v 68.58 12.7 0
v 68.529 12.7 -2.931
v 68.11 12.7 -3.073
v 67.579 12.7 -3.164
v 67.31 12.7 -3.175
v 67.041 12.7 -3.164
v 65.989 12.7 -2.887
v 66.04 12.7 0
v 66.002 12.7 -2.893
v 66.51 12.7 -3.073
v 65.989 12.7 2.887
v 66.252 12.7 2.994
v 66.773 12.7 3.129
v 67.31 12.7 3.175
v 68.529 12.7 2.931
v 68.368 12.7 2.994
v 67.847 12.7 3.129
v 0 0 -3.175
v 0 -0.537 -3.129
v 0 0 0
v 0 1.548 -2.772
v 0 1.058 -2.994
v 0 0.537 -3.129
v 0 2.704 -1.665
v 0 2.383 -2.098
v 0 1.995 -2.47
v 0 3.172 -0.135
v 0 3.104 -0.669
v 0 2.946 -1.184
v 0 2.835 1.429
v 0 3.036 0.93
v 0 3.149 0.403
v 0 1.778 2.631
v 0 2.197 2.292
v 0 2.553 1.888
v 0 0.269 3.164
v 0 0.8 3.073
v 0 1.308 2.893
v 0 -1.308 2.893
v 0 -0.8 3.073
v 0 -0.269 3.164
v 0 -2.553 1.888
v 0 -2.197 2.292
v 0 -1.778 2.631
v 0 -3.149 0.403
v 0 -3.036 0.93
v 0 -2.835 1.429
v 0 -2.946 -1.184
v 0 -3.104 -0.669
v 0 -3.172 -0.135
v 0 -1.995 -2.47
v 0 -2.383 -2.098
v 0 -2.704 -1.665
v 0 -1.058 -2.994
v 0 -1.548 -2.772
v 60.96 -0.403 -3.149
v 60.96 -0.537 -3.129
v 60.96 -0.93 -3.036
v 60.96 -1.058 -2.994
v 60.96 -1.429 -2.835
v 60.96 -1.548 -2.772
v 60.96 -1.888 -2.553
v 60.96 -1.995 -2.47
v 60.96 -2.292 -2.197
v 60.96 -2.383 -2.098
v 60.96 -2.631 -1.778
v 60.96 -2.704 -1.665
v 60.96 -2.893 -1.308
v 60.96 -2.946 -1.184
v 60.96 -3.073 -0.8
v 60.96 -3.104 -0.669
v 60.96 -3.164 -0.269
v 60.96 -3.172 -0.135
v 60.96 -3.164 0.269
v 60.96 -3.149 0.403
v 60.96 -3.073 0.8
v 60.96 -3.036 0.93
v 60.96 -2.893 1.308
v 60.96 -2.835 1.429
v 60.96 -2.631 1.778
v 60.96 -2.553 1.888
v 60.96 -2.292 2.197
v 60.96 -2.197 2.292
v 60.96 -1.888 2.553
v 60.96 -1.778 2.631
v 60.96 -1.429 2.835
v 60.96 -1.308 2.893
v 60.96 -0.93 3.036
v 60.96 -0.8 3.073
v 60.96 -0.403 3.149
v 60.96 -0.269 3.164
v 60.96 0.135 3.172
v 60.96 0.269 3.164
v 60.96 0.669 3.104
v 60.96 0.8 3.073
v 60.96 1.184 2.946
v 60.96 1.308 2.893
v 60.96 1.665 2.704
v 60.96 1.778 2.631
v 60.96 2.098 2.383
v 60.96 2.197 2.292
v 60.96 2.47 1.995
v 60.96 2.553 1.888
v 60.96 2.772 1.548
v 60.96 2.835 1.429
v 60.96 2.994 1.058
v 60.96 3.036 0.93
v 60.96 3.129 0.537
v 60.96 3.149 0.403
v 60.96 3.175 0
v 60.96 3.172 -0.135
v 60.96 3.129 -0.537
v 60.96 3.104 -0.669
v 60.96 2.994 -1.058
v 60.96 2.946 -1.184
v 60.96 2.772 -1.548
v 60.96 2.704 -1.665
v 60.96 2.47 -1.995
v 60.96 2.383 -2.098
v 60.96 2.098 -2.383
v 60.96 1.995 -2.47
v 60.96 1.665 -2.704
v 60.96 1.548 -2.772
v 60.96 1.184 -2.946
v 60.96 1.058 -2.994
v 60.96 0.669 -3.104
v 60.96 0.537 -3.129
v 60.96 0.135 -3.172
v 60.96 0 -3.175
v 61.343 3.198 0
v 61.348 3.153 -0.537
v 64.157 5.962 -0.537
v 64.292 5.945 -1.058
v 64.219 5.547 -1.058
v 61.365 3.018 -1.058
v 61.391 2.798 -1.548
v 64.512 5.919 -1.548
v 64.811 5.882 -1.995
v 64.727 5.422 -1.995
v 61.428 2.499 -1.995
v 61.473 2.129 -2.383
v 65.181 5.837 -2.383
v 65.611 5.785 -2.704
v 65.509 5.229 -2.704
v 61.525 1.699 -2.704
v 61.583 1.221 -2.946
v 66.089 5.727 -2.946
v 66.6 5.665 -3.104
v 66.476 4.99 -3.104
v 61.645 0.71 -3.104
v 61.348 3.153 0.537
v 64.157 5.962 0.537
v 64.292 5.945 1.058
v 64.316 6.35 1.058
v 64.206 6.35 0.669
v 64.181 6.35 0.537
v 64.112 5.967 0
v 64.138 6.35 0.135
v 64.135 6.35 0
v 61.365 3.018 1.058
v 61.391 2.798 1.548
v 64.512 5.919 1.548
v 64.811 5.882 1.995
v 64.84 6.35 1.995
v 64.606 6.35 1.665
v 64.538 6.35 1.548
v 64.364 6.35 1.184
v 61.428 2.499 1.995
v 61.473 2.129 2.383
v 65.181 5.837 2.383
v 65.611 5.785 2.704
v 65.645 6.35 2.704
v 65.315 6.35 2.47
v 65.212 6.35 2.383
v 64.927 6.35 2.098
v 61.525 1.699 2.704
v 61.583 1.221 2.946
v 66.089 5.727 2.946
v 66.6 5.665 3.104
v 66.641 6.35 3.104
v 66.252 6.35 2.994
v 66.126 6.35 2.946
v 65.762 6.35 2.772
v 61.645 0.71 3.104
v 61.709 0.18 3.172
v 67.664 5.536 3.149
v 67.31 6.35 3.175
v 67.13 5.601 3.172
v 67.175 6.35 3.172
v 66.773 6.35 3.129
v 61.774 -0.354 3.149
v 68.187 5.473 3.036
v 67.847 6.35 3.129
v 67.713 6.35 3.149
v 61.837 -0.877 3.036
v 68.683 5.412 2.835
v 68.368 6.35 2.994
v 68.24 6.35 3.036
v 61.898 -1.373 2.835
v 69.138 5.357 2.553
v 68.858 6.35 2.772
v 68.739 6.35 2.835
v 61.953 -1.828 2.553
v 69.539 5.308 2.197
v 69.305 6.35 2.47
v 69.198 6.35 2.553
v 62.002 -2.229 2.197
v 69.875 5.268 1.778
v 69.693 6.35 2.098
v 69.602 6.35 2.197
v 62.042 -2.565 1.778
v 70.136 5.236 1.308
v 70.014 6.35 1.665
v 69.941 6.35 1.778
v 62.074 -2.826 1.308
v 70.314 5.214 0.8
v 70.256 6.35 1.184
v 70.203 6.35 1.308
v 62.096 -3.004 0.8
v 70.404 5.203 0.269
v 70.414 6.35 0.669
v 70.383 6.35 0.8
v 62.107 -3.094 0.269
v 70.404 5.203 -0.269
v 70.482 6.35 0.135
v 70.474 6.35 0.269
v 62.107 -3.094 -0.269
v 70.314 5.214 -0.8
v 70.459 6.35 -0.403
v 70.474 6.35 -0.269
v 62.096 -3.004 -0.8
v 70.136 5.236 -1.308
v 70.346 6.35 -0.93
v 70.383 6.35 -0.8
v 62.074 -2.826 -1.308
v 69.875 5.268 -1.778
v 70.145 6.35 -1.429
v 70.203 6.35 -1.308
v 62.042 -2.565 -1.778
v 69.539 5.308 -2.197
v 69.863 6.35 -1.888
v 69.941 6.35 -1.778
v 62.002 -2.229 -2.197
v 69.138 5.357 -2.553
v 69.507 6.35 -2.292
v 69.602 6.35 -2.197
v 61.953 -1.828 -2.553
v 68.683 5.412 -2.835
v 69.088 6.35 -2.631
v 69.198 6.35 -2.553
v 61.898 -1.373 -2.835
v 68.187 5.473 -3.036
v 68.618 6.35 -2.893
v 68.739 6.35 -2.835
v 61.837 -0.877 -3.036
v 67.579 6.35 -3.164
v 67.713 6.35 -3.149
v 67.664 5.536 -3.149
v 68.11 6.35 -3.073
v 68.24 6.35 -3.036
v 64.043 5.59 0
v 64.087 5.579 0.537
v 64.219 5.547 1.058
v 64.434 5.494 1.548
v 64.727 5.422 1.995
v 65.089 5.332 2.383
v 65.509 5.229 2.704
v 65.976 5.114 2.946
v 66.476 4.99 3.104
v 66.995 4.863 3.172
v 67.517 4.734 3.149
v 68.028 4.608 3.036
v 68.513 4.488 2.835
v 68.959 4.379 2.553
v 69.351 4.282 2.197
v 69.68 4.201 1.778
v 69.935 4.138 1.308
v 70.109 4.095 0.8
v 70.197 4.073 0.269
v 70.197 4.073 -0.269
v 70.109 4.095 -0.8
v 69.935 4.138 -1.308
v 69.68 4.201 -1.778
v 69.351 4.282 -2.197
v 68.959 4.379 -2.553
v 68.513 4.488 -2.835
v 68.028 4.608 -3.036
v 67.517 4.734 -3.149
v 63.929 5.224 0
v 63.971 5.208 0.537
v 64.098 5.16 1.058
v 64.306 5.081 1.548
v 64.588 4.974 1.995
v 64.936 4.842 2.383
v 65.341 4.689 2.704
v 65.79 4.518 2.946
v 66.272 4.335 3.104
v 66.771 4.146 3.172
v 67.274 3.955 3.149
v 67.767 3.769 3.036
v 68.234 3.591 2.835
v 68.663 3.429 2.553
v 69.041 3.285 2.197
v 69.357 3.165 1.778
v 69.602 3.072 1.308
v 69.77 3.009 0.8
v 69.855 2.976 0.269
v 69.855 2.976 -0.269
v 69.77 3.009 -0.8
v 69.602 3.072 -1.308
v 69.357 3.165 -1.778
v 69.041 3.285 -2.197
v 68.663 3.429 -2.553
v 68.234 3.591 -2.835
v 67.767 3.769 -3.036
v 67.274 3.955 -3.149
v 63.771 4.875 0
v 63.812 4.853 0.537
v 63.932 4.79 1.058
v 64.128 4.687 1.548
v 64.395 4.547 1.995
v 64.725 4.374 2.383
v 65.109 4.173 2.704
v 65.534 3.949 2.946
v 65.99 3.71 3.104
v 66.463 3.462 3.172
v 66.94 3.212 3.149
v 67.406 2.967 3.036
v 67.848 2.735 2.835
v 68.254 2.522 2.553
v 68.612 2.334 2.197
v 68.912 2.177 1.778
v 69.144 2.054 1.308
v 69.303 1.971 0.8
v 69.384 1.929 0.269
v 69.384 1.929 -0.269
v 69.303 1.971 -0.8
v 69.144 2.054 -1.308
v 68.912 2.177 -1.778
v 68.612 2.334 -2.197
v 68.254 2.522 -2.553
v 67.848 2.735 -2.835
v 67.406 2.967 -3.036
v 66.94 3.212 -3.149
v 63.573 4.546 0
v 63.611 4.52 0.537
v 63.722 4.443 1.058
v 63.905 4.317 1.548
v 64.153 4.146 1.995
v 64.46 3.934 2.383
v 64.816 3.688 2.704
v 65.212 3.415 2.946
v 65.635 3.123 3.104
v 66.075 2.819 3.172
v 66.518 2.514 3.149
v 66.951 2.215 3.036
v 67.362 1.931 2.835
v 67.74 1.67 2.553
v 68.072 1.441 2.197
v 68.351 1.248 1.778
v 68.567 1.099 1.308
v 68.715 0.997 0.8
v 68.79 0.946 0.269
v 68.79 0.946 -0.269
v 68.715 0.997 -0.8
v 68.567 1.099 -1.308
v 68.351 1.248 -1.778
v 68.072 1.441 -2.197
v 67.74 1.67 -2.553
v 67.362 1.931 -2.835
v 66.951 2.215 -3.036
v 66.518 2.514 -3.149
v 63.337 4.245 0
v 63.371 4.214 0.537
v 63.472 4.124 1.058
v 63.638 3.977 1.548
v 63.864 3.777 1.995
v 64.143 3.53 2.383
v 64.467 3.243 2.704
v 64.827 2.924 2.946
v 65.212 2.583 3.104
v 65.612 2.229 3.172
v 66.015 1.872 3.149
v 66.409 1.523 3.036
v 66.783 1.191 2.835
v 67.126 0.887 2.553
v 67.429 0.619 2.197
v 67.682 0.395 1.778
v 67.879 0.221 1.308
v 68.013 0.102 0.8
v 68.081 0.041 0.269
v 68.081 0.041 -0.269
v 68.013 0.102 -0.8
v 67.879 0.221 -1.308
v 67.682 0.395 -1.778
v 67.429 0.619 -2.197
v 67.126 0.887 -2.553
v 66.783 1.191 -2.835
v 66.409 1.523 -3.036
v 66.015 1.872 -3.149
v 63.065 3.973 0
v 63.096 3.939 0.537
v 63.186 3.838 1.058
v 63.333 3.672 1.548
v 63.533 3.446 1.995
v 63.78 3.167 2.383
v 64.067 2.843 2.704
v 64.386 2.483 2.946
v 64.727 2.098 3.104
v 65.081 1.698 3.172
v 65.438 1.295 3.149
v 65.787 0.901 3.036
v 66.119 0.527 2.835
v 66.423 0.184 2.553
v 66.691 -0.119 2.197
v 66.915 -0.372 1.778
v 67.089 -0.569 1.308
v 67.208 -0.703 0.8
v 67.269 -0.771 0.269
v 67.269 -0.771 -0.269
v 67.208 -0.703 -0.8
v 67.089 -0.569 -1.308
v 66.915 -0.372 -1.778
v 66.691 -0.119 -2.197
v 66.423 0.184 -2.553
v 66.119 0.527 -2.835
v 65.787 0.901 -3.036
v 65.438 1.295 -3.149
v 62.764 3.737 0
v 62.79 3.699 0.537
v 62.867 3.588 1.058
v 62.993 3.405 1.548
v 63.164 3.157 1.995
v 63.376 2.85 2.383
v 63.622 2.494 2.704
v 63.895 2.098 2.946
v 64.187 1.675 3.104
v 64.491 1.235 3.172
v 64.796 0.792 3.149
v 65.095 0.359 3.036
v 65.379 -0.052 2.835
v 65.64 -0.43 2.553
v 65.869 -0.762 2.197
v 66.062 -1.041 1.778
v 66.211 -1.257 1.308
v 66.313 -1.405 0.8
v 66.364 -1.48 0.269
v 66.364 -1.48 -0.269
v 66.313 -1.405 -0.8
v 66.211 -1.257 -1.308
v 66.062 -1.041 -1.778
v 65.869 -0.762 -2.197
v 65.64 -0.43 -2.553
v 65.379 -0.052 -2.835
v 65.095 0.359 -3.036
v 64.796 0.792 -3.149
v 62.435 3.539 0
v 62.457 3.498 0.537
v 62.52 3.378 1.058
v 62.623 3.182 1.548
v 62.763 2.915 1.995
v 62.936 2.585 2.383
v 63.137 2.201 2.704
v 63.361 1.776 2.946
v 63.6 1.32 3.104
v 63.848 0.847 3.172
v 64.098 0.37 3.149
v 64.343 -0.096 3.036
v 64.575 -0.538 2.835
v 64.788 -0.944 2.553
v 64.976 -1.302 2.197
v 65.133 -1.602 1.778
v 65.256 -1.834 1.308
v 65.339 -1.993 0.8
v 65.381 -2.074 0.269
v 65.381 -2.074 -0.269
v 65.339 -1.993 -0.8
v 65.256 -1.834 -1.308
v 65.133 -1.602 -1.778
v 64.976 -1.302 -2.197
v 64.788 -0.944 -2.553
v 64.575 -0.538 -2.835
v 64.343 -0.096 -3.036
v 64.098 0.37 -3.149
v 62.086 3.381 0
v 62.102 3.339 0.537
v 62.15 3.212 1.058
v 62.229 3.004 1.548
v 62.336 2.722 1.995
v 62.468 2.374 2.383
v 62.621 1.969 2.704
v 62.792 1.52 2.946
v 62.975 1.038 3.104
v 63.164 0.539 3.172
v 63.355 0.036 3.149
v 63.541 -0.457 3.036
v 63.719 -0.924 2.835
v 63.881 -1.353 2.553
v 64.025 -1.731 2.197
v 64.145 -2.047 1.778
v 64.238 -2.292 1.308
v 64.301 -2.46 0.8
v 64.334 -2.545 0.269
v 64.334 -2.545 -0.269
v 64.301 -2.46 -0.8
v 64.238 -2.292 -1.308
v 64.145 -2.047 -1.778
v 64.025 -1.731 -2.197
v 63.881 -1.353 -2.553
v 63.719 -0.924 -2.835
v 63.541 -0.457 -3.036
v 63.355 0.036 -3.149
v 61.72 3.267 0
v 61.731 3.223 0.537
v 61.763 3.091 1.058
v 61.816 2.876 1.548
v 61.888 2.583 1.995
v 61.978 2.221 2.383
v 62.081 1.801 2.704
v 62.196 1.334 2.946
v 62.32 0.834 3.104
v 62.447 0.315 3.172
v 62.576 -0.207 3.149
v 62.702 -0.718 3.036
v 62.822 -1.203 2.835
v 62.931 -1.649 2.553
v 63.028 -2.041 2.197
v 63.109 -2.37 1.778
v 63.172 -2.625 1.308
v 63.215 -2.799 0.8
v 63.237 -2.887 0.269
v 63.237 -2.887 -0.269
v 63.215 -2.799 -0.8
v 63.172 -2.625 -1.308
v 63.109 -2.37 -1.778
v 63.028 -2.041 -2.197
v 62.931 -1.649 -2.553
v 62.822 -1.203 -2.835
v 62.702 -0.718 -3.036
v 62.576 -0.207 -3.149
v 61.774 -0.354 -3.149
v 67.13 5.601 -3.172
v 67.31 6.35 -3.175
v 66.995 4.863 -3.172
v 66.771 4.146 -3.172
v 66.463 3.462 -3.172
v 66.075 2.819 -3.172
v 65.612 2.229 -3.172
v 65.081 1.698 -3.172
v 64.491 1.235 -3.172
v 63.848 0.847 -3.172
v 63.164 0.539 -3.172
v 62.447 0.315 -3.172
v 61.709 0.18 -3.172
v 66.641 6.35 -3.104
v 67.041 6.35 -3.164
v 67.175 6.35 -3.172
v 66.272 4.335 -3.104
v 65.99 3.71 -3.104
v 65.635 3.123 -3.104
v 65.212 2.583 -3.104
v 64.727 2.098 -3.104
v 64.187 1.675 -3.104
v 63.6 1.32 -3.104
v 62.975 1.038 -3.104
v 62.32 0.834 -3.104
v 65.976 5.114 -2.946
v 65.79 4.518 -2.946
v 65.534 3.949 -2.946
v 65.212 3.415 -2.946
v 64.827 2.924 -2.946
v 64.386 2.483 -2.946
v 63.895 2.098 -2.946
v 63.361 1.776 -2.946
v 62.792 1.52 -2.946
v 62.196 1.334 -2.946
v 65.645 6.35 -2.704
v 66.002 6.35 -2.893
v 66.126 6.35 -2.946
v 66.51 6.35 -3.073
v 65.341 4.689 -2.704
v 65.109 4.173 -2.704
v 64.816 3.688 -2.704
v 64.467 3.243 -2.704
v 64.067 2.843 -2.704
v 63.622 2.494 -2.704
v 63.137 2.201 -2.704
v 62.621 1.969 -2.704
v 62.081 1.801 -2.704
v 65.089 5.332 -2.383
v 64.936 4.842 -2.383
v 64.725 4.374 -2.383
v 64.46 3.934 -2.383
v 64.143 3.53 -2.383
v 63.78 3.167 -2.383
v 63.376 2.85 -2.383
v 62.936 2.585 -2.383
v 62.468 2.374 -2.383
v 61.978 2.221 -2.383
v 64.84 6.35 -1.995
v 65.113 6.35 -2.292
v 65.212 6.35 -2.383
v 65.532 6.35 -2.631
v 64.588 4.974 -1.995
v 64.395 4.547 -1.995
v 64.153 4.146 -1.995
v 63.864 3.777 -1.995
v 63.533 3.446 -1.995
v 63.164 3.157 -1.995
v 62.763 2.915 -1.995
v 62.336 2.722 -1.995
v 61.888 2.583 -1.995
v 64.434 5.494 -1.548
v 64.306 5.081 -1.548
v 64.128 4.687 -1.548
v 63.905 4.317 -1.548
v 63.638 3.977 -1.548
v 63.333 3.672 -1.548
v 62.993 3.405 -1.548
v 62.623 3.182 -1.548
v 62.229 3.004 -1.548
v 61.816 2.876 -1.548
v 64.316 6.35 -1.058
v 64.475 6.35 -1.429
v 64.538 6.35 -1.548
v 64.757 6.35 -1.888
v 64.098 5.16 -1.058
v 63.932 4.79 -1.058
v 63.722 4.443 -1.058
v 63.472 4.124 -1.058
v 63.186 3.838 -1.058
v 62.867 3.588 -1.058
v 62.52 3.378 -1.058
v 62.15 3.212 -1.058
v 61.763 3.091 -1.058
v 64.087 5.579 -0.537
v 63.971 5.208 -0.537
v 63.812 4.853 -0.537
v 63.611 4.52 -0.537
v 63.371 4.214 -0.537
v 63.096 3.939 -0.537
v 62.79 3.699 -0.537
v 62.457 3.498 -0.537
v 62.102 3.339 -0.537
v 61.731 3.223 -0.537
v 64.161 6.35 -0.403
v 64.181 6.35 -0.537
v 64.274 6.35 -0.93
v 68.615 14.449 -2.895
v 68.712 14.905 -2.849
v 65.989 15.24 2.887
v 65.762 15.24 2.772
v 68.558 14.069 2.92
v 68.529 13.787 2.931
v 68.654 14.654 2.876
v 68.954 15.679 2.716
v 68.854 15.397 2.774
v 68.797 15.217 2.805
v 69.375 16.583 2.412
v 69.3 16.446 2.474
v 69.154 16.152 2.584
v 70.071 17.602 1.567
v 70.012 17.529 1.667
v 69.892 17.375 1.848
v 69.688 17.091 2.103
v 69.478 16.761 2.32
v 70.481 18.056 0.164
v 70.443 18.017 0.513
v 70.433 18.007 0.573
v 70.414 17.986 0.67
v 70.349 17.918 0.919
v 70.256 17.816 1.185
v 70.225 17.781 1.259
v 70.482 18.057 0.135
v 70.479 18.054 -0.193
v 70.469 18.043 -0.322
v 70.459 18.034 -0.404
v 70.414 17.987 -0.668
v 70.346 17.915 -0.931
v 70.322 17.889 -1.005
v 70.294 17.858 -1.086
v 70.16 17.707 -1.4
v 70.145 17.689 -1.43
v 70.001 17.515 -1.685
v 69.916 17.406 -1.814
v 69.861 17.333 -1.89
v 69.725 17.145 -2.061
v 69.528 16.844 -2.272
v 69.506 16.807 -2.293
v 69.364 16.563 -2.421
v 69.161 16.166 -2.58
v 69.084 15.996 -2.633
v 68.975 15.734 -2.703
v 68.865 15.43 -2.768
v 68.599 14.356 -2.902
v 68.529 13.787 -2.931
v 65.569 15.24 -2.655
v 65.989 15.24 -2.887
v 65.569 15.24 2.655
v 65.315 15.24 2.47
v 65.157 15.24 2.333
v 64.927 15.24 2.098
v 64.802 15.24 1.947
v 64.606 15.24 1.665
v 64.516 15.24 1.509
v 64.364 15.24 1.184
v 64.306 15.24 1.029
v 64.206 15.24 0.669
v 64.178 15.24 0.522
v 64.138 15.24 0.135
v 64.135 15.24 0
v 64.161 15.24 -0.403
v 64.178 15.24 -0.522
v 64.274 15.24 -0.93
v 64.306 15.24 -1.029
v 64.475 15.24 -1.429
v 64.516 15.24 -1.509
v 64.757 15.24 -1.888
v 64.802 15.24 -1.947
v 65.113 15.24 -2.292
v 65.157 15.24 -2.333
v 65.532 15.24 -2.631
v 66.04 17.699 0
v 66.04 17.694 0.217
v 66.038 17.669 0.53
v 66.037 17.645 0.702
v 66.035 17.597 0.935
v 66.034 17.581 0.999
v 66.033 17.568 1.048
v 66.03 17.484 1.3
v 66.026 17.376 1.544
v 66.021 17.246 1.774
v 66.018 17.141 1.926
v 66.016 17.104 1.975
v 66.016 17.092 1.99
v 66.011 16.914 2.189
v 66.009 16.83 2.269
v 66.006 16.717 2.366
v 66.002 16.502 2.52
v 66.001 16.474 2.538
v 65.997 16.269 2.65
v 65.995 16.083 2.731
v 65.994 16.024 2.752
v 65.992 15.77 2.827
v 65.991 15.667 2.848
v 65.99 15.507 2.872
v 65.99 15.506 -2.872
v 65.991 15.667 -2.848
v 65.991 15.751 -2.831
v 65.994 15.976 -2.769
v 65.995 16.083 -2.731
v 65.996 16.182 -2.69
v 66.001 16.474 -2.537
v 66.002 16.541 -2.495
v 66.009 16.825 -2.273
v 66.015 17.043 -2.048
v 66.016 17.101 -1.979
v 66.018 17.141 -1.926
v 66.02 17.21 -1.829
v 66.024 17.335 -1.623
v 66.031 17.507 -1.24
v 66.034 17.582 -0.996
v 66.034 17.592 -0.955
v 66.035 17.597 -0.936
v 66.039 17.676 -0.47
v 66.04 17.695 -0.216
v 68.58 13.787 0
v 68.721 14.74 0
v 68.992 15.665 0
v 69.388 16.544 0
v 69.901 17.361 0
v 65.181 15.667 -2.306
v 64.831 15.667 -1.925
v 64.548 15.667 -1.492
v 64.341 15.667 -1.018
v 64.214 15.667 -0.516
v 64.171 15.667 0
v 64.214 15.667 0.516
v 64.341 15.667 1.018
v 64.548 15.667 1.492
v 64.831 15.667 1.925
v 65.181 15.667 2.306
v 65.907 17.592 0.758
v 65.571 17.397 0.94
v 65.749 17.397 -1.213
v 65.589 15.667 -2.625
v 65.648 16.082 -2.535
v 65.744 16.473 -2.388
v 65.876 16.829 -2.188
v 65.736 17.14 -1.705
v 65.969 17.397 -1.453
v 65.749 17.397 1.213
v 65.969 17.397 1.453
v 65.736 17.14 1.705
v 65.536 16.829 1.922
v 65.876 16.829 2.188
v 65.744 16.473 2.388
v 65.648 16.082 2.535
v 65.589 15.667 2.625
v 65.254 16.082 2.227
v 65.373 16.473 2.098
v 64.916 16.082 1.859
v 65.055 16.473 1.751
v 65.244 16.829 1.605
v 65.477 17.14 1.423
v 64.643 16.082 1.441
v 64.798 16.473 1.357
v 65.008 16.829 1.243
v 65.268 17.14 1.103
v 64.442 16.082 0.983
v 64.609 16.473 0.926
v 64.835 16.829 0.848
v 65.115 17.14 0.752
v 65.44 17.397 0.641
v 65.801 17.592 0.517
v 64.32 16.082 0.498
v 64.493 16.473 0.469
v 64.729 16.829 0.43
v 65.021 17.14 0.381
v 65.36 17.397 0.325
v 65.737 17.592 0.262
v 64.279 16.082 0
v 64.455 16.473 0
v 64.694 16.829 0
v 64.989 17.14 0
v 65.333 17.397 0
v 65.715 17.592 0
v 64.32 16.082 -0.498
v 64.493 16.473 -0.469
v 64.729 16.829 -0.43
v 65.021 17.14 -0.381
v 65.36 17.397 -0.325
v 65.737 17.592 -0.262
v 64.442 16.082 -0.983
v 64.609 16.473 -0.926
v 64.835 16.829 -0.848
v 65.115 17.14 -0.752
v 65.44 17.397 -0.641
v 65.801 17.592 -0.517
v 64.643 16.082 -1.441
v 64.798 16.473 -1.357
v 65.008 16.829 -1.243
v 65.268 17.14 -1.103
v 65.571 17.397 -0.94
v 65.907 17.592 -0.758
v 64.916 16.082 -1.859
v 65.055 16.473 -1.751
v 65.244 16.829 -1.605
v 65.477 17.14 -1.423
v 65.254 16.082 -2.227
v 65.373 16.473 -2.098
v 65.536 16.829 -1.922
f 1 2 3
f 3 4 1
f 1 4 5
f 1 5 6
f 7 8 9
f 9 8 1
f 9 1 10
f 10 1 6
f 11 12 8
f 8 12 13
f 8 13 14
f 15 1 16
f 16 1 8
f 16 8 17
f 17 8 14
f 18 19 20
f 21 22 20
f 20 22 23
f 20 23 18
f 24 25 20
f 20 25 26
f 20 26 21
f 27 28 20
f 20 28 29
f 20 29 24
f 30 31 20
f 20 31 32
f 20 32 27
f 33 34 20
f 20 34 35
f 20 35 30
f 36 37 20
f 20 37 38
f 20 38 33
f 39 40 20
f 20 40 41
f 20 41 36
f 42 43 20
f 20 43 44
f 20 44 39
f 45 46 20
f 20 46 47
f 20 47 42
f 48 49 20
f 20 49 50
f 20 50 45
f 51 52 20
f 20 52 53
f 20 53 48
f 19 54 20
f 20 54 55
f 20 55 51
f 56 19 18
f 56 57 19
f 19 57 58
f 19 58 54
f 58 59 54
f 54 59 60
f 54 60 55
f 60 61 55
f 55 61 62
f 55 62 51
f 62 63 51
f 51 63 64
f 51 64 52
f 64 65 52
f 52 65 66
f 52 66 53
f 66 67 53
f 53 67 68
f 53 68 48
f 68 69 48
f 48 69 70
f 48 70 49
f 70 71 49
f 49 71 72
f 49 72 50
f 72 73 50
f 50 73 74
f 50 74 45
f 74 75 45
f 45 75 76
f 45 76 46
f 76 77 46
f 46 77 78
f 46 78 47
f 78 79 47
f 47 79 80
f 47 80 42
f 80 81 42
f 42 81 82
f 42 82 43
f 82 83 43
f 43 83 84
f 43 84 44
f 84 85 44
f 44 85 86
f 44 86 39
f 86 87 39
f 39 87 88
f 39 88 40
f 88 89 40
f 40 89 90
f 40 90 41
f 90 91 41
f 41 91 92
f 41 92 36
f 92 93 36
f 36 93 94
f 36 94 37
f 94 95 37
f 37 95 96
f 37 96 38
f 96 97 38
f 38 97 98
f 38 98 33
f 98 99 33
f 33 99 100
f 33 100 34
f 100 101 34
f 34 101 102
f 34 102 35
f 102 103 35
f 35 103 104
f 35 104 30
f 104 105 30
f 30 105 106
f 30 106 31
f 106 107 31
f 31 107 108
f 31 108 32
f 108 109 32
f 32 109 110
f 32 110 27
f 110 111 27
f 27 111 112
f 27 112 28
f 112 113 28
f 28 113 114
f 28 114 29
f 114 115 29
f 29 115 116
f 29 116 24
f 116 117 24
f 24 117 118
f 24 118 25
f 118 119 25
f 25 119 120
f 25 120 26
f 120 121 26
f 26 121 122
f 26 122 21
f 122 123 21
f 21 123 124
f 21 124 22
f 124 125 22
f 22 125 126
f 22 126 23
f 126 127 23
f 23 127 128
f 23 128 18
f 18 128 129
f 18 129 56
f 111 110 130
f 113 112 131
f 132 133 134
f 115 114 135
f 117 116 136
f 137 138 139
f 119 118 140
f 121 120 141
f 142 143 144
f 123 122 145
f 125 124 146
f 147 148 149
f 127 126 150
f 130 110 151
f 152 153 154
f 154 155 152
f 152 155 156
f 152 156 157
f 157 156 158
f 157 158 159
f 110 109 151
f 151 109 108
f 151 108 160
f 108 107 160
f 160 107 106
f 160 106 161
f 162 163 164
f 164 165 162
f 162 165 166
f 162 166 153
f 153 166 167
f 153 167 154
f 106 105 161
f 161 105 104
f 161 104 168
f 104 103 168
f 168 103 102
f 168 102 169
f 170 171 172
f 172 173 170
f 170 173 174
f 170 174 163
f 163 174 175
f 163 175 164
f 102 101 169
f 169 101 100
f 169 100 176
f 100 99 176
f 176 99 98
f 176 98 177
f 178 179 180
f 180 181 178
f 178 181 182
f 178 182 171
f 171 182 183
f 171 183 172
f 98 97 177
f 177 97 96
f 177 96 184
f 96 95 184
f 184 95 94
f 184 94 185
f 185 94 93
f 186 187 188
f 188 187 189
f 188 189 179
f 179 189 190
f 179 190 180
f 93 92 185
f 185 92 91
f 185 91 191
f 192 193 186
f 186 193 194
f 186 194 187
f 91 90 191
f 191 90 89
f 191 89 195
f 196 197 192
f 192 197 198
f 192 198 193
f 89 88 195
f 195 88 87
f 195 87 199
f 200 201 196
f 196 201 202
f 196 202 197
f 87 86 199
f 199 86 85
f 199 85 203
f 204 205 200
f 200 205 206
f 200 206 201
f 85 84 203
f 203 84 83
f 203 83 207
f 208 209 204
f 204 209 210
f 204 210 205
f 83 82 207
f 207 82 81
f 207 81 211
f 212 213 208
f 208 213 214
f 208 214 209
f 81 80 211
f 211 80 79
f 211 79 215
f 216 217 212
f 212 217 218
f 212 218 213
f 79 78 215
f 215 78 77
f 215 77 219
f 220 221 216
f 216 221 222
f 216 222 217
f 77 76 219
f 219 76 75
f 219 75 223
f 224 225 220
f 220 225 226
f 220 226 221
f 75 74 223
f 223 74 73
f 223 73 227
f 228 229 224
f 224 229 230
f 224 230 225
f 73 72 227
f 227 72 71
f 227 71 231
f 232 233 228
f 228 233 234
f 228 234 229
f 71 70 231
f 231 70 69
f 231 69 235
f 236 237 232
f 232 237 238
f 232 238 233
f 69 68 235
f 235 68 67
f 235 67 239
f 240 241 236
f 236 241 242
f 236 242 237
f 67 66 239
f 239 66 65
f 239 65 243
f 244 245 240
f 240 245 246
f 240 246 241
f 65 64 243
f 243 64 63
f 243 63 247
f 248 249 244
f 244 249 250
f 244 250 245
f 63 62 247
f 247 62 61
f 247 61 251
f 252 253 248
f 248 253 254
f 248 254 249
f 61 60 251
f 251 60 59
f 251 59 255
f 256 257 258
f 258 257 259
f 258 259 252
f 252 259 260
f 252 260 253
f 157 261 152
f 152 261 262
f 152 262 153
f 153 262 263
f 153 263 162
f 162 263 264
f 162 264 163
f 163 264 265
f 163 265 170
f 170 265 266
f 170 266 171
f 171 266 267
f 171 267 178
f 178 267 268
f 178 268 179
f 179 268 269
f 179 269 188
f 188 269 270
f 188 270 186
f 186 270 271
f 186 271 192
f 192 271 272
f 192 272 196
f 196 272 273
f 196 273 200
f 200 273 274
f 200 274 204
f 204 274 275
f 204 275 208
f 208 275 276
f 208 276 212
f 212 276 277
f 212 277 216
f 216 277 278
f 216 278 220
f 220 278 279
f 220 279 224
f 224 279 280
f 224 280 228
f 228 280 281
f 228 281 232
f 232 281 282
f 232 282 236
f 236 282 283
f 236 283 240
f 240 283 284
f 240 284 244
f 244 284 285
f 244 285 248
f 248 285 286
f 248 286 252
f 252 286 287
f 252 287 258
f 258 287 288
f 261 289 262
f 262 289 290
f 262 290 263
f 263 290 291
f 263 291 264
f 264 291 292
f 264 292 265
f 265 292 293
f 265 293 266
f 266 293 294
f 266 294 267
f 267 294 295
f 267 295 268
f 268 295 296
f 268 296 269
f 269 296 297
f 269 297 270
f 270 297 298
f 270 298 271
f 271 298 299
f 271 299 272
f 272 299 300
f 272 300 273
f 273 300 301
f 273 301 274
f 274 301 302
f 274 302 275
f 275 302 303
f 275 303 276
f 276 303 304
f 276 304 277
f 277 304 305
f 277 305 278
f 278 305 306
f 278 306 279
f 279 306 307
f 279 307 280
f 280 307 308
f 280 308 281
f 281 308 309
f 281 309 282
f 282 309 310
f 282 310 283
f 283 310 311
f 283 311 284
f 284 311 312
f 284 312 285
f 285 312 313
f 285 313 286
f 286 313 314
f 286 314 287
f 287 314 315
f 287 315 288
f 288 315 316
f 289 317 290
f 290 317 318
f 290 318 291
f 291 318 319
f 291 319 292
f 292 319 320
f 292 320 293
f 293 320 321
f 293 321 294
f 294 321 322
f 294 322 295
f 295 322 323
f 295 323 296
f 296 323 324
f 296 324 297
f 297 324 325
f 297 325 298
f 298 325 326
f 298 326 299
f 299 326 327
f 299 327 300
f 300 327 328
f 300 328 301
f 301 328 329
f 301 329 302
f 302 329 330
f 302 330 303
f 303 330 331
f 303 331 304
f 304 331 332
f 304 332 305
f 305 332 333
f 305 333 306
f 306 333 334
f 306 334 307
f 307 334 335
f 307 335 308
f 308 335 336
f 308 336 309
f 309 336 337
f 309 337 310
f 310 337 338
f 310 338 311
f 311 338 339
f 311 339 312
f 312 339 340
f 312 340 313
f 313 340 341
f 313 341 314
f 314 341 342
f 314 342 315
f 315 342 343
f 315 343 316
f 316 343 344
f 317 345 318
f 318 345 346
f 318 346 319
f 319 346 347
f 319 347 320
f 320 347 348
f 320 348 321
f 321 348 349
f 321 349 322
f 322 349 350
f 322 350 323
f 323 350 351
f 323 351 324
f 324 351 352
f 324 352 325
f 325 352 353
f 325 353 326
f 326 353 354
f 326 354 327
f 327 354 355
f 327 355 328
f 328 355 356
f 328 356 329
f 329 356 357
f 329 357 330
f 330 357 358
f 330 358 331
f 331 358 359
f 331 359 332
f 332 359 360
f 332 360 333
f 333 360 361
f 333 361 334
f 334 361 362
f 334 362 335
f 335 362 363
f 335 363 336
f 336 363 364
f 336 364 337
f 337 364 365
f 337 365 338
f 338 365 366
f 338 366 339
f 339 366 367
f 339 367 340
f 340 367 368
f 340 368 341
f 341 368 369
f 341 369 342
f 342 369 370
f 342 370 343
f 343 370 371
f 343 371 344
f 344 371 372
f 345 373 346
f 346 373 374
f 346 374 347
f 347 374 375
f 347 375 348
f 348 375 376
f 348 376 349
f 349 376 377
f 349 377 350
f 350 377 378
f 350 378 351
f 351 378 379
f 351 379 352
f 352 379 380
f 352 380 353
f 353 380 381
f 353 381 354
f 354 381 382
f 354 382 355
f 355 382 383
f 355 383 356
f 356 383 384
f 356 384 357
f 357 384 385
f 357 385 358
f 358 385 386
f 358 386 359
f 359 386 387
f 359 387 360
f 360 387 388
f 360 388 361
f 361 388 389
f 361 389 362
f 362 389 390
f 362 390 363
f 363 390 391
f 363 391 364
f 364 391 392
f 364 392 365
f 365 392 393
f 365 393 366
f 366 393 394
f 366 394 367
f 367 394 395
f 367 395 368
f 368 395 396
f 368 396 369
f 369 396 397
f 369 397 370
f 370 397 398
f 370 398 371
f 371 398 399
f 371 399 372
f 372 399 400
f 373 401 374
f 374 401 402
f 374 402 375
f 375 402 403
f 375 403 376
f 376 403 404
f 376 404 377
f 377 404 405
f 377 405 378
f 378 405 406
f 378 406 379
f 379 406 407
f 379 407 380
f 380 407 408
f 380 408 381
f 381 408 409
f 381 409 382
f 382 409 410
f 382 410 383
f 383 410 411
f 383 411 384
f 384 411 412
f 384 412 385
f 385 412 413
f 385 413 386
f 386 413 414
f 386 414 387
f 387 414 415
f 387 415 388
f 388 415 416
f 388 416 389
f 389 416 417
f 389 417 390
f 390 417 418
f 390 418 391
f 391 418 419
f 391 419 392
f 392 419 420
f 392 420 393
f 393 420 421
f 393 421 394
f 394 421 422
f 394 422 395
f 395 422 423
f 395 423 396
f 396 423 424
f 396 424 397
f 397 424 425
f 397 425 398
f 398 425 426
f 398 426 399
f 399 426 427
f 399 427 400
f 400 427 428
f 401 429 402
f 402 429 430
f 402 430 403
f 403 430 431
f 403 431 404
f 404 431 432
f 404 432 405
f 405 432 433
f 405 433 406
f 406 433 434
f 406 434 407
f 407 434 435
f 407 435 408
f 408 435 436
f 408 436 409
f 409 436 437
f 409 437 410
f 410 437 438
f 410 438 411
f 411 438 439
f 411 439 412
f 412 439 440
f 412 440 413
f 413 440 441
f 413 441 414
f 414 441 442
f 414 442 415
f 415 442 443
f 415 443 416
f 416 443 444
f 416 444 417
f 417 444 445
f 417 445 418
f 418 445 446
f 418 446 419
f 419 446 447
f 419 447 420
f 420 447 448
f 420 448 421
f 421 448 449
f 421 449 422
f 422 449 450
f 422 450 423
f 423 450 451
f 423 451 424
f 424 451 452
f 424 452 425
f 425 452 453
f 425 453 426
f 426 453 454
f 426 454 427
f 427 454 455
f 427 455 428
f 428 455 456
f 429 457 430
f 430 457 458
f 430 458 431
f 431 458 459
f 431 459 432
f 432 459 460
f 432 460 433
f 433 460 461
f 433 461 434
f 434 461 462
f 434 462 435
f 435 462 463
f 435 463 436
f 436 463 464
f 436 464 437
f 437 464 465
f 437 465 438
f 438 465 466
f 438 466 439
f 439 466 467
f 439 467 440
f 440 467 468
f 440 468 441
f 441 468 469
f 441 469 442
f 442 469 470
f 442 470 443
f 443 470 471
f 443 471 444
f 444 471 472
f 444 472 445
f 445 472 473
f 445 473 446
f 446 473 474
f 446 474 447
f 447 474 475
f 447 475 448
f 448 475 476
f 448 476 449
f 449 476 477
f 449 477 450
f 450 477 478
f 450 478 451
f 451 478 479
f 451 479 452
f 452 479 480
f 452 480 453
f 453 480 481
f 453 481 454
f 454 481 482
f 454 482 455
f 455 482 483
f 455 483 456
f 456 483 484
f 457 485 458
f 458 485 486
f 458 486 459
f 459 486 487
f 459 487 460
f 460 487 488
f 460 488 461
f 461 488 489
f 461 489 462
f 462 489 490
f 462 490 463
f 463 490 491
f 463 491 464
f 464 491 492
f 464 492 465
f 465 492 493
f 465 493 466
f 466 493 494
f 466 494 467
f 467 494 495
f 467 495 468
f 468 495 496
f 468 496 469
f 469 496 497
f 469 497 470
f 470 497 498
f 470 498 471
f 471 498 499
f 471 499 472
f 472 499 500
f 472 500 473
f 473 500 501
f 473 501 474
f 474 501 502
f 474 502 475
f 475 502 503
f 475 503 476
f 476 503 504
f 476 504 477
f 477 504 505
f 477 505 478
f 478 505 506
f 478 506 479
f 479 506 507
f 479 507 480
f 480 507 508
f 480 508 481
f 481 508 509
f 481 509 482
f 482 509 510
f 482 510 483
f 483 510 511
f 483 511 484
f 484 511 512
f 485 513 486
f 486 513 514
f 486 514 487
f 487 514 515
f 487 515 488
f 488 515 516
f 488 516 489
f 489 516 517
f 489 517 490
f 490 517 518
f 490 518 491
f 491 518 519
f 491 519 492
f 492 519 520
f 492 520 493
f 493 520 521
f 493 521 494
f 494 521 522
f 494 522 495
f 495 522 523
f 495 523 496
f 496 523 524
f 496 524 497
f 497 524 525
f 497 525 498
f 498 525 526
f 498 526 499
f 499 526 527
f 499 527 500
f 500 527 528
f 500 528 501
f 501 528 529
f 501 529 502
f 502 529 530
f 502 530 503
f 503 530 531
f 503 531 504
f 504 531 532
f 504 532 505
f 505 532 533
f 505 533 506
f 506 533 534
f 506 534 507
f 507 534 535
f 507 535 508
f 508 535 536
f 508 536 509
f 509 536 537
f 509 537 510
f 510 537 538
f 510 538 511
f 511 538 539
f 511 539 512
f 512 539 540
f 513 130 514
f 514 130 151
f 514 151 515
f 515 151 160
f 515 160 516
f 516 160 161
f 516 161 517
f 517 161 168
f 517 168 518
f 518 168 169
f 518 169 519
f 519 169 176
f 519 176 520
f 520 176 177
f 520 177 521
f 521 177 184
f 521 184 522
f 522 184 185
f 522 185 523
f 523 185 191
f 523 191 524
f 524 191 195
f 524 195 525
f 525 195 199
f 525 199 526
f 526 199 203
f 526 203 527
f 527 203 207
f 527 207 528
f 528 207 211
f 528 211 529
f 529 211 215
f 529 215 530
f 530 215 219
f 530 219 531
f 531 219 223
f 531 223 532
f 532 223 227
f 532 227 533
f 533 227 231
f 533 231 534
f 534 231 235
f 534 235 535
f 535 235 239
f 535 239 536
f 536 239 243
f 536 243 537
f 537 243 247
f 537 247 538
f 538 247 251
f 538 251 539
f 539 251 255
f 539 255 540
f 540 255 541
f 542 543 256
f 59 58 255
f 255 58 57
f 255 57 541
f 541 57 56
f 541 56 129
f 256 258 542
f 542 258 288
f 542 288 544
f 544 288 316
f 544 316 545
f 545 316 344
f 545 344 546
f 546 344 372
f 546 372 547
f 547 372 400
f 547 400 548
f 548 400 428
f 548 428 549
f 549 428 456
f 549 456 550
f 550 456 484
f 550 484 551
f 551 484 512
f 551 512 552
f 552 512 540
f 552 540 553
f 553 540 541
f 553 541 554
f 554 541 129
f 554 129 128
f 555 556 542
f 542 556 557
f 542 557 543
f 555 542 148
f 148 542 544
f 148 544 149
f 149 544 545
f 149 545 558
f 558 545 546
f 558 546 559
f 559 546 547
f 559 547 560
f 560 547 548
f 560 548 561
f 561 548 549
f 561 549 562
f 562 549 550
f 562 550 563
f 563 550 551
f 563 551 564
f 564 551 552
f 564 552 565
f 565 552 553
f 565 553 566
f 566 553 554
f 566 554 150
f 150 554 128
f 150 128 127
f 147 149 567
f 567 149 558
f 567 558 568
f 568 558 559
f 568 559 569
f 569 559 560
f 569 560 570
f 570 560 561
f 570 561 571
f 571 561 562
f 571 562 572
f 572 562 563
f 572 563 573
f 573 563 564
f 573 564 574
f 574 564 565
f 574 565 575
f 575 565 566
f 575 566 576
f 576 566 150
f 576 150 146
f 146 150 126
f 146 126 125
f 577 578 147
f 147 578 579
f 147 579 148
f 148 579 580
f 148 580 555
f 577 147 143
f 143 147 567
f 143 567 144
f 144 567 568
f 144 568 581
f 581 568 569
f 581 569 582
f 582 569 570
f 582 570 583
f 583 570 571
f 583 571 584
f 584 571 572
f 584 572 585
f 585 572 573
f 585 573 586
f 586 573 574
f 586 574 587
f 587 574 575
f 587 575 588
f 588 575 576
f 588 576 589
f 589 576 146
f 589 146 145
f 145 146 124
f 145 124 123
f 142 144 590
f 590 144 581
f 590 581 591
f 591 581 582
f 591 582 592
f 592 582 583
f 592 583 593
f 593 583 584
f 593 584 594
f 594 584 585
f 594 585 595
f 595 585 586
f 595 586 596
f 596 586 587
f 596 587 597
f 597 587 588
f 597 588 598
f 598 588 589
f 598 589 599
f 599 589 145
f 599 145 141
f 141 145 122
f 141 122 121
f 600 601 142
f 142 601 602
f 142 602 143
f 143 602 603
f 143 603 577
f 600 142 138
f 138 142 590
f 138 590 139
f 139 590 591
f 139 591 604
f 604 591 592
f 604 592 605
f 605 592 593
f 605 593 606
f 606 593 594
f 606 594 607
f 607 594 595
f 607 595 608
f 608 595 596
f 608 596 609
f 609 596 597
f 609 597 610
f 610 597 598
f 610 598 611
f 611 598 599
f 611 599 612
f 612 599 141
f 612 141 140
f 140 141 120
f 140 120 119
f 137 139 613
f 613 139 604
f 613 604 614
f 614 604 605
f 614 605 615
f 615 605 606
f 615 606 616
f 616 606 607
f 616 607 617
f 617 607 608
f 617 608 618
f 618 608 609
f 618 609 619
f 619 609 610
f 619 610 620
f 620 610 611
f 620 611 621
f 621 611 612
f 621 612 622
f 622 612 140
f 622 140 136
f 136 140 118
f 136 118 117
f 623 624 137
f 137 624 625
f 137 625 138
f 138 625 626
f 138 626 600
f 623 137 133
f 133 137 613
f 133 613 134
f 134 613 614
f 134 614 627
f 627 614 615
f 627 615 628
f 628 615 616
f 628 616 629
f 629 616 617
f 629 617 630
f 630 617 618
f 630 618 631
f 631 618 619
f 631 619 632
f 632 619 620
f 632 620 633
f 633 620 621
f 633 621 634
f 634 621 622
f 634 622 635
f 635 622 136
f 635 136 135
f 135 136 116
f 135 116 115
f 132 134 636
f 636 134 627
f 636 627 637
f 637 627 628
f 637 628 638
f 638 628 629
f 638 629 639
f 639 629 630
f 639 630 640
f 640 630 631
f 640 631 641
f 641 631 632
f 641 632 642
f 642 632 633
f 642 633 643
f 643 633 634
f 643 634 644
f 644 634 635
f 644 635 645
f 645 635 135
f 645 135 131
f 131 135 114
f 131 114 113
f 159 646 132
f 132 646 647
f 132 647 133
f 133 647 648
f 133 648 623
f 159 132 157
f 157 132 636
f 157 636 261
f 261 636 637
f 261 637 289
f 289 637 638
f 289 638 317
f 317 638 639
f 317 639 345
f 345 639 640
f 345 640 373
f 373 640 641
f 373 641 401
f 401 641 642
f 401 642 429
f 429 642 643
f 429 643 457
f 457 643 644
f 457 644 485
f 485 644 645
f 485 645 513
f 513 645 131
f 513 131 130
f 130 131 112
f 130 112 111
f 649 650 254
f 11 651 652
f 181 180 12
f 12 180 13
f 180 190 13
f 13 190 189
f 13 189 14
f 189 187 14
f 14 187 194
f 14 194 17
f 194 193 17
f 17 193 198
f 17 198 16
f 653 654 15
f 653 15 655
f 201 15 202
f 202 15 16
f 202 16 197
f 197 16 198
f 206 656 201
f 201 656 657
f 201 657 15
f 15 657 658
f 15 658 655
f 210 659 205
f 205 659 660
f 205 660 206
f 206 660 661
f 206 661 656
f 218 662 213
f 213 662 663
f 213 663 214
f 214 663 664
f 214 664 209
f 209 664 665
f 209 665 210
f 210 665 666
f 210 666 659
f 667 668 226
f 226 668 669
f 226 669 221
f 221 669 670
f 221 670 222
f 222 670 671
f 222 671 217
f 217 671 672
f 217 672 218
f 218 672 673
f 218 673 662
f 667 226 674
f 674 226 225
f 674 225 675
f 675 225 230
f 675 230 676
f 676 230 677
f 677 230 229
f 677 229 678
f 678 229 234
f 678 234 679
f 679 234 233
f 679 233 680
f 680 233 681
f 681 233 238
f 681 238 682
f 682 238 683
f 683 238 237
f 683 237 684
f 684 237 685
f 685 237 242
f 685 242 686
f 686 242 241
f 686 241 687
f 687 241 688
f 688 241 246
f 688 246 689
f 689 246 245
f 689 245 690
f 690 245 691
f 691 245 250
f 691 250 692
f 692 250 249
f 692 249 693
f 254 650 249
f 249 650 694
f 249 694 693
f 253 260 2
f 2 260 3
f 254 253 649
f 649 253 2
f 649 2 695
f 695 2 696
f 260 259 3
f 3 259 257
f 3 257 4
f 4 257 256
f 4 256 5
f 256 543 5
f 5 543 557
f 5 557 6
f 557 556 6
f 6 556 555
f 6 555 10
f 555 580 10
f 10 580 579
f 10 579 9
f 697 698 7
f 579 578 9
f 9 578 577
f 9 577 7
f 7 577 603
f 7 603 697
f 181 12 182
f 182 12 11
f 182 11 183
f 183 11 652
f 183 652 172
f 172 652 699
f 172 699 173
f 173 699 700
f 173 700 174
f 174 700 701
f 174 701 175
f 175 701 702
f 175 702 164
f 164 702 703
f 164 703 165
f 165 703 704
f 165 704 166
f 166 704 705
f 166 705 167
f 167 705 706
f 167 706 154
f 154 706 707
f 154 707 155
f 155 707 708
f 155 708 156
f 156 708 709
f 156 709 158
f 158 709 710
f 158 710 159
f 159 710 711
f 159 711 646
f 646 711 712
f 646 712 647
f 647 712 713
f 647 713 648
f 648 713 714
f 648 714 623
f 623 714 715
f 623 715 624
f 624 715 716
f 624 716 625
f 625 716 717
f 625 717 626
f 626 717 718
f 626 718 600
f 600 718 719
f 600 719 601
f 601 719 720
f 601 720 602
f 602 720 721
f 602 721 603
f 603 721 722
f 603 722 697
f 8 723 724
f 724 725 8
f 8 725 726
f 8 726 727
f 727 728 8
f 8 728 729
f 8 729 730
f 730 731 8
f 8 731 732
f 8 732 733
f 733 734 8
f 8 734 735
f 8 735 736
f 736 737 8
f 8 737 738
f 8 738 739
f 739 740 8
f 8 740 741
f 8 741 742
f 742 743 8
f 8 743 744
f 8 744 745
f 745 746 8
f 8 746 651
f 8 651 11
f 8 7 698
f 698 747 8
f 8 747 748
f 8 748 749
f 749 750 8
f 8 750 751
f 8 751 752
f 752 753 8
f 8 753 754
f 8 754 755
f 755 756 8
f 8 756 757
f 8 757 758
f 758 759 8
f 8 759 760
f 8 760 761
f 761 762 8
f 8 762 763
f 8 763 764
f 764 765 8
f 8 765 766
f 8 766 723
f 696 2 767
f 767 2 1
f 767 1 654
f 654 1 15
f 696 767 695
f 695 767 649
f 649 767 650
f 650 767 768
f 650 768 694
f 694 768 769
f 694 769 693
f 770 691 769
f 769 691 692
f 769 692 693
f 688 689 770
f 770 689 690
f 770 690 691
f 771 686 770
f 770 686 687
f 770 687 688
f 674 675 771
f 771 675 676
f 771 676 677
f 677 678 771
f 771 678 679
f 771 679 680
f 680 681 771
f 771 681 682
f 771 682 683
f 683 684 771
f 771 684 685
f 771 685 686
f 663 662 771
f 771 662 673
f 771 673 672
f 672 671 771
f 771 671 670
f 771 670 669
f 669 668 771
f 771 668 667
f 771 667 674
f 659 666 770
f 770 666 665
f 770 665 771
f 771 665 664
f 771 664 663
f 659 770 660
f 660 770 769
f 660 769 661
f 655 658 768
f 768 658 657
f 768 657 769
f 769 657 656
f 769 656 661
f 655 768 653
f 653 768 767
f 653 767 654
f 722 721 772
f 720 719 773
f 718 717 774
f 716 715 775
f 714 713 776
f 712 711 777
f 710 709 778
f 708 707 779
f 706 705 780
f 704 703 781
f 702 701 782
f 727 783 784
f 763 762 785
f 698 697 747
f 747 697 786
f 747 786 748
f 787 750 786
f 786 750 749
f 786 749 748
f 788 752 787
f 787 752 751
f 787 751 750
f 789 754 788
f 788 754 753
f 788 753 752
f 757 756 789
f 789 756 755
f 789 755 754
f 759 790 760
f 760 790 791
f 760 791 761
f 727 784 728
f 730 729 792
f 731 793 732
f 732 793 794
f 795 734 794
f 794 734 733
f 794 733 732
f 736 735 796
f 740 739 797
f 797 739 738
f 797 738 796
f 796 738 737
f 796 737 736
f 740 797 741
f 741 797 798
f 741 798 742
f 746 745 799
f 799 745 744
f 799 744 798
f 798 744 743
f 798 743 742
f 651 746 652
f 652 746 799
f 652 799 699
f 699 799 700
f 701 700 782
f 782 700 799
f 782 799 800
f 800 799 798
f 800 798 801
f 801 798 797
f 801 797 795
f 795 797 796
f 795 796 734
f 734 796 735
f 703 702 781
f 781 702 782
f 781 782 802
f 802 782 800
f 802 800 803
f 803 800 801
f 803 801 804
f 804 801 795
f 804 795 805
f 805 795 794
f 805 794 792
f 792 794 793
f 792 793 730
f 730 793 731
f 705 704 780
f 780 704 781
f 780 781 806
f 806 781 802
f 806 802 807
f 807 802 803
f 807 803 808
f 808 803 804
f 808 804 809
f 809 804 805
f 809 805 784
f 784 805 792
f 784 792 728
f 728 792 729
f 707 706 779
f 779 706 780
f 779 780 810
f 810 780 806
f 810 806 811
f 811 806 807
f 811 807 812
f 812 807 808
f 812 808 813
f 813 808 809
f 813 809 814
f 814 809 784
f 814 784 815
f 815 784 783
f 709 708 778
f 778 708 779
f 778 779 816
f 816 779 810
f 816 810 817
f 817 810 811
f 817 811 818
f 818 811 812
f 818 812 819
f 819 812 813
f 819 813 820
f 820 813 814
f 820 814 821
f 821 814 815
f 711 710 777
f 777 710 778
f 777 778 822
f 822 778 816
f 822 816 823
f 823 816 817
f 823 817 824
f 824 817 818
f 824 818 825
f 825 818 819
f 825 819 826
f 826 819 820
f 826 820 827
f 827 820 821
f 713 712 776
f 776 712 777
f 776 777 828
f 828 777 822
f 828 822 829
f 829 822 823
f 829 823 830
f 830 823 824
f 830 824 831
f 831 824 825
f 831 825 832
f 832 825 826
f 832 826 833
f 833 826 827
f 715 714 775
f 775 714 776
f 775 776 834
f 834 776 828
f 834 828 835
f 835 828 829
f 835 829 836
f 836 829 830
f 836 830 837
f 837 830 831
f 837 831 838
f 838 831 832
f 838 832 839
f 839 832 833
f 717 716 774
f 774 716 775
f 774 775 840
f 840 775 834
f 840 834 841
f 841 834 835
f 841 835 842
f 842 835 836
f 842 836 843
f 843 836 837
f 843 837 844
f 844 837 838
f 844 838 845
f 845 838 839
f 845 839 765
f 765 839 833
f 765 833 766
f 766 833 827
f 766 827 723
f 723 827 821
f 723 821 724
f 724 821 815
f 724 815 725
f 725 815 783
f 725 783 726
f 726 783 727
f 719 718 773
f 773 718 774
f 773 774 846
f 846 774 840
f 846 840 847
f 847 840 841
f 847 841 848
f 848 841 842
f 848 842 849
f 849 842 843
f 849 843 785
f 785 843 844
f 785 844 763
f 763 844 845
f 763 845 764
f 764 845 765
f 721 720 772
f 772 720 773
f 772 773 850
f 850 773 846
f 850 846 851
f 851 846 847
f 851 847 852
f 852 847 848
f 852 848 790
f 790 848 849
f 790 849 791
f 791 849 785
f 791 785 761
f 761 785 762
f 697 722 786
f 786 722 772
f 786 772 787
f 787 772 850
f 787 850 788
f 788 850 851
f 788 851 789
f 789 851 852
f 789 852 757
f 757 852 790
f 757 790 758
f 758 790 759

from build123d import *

# Parameters (mm, degrees)
SKETCH1_R                      = 3.175
BOSS_EXTRUDE1_START            = 5.08
BOSS_EXTRUDE1_DEPTH            = 5.08
BOSS_EXTRUDE2_REACH            = 74.32
BOSS_EXTRUDE2_END_MAJOR_RADIUS = 92.053833851
BOSS_EXTRUDE2_END_MINOR_RADIUS = 6.985
FILLET1_R                      = 2.54


with BuildPart() as part:
    # Sweep3: sweep along a path in Sketch2
    with BuildLine(Plane.XY) as sweep3_path:
        Line((0, 0), (60.96, 0))
        ThreePointArc((60.96, 0), (65.450128061, 1.859871939), (67.31, 6.35))
        Line((67.31, 6.35), (67.31, 12.7))
    # Sketch1 → Sweep3 (sweep)
    with BuildSketch(Plane(origin=(0, 0, 0), x_dir=(0, 0, -1), z_dir=(1, 0, 0))):
        Circle(SKETCH1_R)
    sweep(path=sweep3_path.line)

    # Sketch3 → Boss-Extrude1 (add)
    with BuildSketch(Plane(origin=(0, 12.7, 0), x_dir=(1, 0, 0), z_dir=(0, 1, 0)).offset(BOSS_EXTRUDE1_START)):
        with BuildLine():
            ThreePointArc((65.989488636, 2.88736467), (64.135, 0), (65.989488636, -2.88736467))
            ThreePointArc((65.989488636, -2.88736467), (66.04, 0), (65.989488636, 2.88736467))
        make_face()
    extrude(amount=-BOSS_EXTRUDE1_DEPTH)

    # Boss-Extrude2: up to this torus (the profile starts inside it)
    boss_extrude2_end = Plane(origin=(-16.51, 13.243362772, 0), z_dir=(0, -1, 0)) * Torus(BOSS_EXTRUDE2_END_MAJOR_RADIUS, BOSS_EXTRUDE2_END_MINOR_RADIUS, mode=Mode.PRIVATE)
    # Sketch4 → Boss-Extrude2 (add, up to the surface)
    with BuildSketch(Plane(origin=(0, 12.7, 0), x_dir=(1, 0, 0), z_dir=(0, 1, 0)), mode=Mode.PRIVATE) as boss_extrude2_sk1:
        with BuildLine():
            ThreePointArc((68.529488636, -2.931462513), (70.485, 0), (68.529488636, 2.931462513))
            ThreePointArc((68.529488636, 2.931462513), (68.58, 0), (68.529488636, -2.931462513))
        make_face()
    boss_extrude2_tool1 = extrude(boss_extrude2_sk1.sketch, amount=BOSS_EXTRUDE2_REACH, mode=Mode.PRIVATE) & boss_extrude2_end
    add(boss_extrude2_tool1.solids().sort_by_distance((69.356115, 12.7, 0))[0])

    # Fillet1
    # the kernel refuses this fillet: 2.54 mm, written as the material it takes off along each edge
    with BuildSketch(Plane(origin=(67.31, 17.78, 0), x_dir=(0.9999950652018583, 0, -0.0031415874858765833), z_dir=(0.0031415874858765833, 0, 0.9999950652018583))) as fillet1_piece_1_section:
        with BuildLine():
            CenterArc((3.175 - FILLET1_R, -FILLET1_R), FILLET1_R, 0, 90)
            Line((3.175 - FILLET1_R, 0), (3.175, 0))
            Line((3.175, 0), (3.175, -FILLET1_R))
        make_face()
    fillet1_piece_1 = revolve(axis=Axis((67.31, 17.78, 0), (0, 1, 0)), revolution_arc=359.64, mode=Mode.PRIVATE)
    fillet1_piece_1 = fillet1_piece_1 & Plane(origin=(-16.51, 16.807436712, 0), x_dir=(0.9993881118881123, 0, 0.03497716135872228), z_dir=(0, 1, 0)) * Cylinder(82.55, 13, mode=Mode.PRIVATE)
    add(fillet1_piece_1, mode=Mode.SUBTRACT)


solid = part.part
